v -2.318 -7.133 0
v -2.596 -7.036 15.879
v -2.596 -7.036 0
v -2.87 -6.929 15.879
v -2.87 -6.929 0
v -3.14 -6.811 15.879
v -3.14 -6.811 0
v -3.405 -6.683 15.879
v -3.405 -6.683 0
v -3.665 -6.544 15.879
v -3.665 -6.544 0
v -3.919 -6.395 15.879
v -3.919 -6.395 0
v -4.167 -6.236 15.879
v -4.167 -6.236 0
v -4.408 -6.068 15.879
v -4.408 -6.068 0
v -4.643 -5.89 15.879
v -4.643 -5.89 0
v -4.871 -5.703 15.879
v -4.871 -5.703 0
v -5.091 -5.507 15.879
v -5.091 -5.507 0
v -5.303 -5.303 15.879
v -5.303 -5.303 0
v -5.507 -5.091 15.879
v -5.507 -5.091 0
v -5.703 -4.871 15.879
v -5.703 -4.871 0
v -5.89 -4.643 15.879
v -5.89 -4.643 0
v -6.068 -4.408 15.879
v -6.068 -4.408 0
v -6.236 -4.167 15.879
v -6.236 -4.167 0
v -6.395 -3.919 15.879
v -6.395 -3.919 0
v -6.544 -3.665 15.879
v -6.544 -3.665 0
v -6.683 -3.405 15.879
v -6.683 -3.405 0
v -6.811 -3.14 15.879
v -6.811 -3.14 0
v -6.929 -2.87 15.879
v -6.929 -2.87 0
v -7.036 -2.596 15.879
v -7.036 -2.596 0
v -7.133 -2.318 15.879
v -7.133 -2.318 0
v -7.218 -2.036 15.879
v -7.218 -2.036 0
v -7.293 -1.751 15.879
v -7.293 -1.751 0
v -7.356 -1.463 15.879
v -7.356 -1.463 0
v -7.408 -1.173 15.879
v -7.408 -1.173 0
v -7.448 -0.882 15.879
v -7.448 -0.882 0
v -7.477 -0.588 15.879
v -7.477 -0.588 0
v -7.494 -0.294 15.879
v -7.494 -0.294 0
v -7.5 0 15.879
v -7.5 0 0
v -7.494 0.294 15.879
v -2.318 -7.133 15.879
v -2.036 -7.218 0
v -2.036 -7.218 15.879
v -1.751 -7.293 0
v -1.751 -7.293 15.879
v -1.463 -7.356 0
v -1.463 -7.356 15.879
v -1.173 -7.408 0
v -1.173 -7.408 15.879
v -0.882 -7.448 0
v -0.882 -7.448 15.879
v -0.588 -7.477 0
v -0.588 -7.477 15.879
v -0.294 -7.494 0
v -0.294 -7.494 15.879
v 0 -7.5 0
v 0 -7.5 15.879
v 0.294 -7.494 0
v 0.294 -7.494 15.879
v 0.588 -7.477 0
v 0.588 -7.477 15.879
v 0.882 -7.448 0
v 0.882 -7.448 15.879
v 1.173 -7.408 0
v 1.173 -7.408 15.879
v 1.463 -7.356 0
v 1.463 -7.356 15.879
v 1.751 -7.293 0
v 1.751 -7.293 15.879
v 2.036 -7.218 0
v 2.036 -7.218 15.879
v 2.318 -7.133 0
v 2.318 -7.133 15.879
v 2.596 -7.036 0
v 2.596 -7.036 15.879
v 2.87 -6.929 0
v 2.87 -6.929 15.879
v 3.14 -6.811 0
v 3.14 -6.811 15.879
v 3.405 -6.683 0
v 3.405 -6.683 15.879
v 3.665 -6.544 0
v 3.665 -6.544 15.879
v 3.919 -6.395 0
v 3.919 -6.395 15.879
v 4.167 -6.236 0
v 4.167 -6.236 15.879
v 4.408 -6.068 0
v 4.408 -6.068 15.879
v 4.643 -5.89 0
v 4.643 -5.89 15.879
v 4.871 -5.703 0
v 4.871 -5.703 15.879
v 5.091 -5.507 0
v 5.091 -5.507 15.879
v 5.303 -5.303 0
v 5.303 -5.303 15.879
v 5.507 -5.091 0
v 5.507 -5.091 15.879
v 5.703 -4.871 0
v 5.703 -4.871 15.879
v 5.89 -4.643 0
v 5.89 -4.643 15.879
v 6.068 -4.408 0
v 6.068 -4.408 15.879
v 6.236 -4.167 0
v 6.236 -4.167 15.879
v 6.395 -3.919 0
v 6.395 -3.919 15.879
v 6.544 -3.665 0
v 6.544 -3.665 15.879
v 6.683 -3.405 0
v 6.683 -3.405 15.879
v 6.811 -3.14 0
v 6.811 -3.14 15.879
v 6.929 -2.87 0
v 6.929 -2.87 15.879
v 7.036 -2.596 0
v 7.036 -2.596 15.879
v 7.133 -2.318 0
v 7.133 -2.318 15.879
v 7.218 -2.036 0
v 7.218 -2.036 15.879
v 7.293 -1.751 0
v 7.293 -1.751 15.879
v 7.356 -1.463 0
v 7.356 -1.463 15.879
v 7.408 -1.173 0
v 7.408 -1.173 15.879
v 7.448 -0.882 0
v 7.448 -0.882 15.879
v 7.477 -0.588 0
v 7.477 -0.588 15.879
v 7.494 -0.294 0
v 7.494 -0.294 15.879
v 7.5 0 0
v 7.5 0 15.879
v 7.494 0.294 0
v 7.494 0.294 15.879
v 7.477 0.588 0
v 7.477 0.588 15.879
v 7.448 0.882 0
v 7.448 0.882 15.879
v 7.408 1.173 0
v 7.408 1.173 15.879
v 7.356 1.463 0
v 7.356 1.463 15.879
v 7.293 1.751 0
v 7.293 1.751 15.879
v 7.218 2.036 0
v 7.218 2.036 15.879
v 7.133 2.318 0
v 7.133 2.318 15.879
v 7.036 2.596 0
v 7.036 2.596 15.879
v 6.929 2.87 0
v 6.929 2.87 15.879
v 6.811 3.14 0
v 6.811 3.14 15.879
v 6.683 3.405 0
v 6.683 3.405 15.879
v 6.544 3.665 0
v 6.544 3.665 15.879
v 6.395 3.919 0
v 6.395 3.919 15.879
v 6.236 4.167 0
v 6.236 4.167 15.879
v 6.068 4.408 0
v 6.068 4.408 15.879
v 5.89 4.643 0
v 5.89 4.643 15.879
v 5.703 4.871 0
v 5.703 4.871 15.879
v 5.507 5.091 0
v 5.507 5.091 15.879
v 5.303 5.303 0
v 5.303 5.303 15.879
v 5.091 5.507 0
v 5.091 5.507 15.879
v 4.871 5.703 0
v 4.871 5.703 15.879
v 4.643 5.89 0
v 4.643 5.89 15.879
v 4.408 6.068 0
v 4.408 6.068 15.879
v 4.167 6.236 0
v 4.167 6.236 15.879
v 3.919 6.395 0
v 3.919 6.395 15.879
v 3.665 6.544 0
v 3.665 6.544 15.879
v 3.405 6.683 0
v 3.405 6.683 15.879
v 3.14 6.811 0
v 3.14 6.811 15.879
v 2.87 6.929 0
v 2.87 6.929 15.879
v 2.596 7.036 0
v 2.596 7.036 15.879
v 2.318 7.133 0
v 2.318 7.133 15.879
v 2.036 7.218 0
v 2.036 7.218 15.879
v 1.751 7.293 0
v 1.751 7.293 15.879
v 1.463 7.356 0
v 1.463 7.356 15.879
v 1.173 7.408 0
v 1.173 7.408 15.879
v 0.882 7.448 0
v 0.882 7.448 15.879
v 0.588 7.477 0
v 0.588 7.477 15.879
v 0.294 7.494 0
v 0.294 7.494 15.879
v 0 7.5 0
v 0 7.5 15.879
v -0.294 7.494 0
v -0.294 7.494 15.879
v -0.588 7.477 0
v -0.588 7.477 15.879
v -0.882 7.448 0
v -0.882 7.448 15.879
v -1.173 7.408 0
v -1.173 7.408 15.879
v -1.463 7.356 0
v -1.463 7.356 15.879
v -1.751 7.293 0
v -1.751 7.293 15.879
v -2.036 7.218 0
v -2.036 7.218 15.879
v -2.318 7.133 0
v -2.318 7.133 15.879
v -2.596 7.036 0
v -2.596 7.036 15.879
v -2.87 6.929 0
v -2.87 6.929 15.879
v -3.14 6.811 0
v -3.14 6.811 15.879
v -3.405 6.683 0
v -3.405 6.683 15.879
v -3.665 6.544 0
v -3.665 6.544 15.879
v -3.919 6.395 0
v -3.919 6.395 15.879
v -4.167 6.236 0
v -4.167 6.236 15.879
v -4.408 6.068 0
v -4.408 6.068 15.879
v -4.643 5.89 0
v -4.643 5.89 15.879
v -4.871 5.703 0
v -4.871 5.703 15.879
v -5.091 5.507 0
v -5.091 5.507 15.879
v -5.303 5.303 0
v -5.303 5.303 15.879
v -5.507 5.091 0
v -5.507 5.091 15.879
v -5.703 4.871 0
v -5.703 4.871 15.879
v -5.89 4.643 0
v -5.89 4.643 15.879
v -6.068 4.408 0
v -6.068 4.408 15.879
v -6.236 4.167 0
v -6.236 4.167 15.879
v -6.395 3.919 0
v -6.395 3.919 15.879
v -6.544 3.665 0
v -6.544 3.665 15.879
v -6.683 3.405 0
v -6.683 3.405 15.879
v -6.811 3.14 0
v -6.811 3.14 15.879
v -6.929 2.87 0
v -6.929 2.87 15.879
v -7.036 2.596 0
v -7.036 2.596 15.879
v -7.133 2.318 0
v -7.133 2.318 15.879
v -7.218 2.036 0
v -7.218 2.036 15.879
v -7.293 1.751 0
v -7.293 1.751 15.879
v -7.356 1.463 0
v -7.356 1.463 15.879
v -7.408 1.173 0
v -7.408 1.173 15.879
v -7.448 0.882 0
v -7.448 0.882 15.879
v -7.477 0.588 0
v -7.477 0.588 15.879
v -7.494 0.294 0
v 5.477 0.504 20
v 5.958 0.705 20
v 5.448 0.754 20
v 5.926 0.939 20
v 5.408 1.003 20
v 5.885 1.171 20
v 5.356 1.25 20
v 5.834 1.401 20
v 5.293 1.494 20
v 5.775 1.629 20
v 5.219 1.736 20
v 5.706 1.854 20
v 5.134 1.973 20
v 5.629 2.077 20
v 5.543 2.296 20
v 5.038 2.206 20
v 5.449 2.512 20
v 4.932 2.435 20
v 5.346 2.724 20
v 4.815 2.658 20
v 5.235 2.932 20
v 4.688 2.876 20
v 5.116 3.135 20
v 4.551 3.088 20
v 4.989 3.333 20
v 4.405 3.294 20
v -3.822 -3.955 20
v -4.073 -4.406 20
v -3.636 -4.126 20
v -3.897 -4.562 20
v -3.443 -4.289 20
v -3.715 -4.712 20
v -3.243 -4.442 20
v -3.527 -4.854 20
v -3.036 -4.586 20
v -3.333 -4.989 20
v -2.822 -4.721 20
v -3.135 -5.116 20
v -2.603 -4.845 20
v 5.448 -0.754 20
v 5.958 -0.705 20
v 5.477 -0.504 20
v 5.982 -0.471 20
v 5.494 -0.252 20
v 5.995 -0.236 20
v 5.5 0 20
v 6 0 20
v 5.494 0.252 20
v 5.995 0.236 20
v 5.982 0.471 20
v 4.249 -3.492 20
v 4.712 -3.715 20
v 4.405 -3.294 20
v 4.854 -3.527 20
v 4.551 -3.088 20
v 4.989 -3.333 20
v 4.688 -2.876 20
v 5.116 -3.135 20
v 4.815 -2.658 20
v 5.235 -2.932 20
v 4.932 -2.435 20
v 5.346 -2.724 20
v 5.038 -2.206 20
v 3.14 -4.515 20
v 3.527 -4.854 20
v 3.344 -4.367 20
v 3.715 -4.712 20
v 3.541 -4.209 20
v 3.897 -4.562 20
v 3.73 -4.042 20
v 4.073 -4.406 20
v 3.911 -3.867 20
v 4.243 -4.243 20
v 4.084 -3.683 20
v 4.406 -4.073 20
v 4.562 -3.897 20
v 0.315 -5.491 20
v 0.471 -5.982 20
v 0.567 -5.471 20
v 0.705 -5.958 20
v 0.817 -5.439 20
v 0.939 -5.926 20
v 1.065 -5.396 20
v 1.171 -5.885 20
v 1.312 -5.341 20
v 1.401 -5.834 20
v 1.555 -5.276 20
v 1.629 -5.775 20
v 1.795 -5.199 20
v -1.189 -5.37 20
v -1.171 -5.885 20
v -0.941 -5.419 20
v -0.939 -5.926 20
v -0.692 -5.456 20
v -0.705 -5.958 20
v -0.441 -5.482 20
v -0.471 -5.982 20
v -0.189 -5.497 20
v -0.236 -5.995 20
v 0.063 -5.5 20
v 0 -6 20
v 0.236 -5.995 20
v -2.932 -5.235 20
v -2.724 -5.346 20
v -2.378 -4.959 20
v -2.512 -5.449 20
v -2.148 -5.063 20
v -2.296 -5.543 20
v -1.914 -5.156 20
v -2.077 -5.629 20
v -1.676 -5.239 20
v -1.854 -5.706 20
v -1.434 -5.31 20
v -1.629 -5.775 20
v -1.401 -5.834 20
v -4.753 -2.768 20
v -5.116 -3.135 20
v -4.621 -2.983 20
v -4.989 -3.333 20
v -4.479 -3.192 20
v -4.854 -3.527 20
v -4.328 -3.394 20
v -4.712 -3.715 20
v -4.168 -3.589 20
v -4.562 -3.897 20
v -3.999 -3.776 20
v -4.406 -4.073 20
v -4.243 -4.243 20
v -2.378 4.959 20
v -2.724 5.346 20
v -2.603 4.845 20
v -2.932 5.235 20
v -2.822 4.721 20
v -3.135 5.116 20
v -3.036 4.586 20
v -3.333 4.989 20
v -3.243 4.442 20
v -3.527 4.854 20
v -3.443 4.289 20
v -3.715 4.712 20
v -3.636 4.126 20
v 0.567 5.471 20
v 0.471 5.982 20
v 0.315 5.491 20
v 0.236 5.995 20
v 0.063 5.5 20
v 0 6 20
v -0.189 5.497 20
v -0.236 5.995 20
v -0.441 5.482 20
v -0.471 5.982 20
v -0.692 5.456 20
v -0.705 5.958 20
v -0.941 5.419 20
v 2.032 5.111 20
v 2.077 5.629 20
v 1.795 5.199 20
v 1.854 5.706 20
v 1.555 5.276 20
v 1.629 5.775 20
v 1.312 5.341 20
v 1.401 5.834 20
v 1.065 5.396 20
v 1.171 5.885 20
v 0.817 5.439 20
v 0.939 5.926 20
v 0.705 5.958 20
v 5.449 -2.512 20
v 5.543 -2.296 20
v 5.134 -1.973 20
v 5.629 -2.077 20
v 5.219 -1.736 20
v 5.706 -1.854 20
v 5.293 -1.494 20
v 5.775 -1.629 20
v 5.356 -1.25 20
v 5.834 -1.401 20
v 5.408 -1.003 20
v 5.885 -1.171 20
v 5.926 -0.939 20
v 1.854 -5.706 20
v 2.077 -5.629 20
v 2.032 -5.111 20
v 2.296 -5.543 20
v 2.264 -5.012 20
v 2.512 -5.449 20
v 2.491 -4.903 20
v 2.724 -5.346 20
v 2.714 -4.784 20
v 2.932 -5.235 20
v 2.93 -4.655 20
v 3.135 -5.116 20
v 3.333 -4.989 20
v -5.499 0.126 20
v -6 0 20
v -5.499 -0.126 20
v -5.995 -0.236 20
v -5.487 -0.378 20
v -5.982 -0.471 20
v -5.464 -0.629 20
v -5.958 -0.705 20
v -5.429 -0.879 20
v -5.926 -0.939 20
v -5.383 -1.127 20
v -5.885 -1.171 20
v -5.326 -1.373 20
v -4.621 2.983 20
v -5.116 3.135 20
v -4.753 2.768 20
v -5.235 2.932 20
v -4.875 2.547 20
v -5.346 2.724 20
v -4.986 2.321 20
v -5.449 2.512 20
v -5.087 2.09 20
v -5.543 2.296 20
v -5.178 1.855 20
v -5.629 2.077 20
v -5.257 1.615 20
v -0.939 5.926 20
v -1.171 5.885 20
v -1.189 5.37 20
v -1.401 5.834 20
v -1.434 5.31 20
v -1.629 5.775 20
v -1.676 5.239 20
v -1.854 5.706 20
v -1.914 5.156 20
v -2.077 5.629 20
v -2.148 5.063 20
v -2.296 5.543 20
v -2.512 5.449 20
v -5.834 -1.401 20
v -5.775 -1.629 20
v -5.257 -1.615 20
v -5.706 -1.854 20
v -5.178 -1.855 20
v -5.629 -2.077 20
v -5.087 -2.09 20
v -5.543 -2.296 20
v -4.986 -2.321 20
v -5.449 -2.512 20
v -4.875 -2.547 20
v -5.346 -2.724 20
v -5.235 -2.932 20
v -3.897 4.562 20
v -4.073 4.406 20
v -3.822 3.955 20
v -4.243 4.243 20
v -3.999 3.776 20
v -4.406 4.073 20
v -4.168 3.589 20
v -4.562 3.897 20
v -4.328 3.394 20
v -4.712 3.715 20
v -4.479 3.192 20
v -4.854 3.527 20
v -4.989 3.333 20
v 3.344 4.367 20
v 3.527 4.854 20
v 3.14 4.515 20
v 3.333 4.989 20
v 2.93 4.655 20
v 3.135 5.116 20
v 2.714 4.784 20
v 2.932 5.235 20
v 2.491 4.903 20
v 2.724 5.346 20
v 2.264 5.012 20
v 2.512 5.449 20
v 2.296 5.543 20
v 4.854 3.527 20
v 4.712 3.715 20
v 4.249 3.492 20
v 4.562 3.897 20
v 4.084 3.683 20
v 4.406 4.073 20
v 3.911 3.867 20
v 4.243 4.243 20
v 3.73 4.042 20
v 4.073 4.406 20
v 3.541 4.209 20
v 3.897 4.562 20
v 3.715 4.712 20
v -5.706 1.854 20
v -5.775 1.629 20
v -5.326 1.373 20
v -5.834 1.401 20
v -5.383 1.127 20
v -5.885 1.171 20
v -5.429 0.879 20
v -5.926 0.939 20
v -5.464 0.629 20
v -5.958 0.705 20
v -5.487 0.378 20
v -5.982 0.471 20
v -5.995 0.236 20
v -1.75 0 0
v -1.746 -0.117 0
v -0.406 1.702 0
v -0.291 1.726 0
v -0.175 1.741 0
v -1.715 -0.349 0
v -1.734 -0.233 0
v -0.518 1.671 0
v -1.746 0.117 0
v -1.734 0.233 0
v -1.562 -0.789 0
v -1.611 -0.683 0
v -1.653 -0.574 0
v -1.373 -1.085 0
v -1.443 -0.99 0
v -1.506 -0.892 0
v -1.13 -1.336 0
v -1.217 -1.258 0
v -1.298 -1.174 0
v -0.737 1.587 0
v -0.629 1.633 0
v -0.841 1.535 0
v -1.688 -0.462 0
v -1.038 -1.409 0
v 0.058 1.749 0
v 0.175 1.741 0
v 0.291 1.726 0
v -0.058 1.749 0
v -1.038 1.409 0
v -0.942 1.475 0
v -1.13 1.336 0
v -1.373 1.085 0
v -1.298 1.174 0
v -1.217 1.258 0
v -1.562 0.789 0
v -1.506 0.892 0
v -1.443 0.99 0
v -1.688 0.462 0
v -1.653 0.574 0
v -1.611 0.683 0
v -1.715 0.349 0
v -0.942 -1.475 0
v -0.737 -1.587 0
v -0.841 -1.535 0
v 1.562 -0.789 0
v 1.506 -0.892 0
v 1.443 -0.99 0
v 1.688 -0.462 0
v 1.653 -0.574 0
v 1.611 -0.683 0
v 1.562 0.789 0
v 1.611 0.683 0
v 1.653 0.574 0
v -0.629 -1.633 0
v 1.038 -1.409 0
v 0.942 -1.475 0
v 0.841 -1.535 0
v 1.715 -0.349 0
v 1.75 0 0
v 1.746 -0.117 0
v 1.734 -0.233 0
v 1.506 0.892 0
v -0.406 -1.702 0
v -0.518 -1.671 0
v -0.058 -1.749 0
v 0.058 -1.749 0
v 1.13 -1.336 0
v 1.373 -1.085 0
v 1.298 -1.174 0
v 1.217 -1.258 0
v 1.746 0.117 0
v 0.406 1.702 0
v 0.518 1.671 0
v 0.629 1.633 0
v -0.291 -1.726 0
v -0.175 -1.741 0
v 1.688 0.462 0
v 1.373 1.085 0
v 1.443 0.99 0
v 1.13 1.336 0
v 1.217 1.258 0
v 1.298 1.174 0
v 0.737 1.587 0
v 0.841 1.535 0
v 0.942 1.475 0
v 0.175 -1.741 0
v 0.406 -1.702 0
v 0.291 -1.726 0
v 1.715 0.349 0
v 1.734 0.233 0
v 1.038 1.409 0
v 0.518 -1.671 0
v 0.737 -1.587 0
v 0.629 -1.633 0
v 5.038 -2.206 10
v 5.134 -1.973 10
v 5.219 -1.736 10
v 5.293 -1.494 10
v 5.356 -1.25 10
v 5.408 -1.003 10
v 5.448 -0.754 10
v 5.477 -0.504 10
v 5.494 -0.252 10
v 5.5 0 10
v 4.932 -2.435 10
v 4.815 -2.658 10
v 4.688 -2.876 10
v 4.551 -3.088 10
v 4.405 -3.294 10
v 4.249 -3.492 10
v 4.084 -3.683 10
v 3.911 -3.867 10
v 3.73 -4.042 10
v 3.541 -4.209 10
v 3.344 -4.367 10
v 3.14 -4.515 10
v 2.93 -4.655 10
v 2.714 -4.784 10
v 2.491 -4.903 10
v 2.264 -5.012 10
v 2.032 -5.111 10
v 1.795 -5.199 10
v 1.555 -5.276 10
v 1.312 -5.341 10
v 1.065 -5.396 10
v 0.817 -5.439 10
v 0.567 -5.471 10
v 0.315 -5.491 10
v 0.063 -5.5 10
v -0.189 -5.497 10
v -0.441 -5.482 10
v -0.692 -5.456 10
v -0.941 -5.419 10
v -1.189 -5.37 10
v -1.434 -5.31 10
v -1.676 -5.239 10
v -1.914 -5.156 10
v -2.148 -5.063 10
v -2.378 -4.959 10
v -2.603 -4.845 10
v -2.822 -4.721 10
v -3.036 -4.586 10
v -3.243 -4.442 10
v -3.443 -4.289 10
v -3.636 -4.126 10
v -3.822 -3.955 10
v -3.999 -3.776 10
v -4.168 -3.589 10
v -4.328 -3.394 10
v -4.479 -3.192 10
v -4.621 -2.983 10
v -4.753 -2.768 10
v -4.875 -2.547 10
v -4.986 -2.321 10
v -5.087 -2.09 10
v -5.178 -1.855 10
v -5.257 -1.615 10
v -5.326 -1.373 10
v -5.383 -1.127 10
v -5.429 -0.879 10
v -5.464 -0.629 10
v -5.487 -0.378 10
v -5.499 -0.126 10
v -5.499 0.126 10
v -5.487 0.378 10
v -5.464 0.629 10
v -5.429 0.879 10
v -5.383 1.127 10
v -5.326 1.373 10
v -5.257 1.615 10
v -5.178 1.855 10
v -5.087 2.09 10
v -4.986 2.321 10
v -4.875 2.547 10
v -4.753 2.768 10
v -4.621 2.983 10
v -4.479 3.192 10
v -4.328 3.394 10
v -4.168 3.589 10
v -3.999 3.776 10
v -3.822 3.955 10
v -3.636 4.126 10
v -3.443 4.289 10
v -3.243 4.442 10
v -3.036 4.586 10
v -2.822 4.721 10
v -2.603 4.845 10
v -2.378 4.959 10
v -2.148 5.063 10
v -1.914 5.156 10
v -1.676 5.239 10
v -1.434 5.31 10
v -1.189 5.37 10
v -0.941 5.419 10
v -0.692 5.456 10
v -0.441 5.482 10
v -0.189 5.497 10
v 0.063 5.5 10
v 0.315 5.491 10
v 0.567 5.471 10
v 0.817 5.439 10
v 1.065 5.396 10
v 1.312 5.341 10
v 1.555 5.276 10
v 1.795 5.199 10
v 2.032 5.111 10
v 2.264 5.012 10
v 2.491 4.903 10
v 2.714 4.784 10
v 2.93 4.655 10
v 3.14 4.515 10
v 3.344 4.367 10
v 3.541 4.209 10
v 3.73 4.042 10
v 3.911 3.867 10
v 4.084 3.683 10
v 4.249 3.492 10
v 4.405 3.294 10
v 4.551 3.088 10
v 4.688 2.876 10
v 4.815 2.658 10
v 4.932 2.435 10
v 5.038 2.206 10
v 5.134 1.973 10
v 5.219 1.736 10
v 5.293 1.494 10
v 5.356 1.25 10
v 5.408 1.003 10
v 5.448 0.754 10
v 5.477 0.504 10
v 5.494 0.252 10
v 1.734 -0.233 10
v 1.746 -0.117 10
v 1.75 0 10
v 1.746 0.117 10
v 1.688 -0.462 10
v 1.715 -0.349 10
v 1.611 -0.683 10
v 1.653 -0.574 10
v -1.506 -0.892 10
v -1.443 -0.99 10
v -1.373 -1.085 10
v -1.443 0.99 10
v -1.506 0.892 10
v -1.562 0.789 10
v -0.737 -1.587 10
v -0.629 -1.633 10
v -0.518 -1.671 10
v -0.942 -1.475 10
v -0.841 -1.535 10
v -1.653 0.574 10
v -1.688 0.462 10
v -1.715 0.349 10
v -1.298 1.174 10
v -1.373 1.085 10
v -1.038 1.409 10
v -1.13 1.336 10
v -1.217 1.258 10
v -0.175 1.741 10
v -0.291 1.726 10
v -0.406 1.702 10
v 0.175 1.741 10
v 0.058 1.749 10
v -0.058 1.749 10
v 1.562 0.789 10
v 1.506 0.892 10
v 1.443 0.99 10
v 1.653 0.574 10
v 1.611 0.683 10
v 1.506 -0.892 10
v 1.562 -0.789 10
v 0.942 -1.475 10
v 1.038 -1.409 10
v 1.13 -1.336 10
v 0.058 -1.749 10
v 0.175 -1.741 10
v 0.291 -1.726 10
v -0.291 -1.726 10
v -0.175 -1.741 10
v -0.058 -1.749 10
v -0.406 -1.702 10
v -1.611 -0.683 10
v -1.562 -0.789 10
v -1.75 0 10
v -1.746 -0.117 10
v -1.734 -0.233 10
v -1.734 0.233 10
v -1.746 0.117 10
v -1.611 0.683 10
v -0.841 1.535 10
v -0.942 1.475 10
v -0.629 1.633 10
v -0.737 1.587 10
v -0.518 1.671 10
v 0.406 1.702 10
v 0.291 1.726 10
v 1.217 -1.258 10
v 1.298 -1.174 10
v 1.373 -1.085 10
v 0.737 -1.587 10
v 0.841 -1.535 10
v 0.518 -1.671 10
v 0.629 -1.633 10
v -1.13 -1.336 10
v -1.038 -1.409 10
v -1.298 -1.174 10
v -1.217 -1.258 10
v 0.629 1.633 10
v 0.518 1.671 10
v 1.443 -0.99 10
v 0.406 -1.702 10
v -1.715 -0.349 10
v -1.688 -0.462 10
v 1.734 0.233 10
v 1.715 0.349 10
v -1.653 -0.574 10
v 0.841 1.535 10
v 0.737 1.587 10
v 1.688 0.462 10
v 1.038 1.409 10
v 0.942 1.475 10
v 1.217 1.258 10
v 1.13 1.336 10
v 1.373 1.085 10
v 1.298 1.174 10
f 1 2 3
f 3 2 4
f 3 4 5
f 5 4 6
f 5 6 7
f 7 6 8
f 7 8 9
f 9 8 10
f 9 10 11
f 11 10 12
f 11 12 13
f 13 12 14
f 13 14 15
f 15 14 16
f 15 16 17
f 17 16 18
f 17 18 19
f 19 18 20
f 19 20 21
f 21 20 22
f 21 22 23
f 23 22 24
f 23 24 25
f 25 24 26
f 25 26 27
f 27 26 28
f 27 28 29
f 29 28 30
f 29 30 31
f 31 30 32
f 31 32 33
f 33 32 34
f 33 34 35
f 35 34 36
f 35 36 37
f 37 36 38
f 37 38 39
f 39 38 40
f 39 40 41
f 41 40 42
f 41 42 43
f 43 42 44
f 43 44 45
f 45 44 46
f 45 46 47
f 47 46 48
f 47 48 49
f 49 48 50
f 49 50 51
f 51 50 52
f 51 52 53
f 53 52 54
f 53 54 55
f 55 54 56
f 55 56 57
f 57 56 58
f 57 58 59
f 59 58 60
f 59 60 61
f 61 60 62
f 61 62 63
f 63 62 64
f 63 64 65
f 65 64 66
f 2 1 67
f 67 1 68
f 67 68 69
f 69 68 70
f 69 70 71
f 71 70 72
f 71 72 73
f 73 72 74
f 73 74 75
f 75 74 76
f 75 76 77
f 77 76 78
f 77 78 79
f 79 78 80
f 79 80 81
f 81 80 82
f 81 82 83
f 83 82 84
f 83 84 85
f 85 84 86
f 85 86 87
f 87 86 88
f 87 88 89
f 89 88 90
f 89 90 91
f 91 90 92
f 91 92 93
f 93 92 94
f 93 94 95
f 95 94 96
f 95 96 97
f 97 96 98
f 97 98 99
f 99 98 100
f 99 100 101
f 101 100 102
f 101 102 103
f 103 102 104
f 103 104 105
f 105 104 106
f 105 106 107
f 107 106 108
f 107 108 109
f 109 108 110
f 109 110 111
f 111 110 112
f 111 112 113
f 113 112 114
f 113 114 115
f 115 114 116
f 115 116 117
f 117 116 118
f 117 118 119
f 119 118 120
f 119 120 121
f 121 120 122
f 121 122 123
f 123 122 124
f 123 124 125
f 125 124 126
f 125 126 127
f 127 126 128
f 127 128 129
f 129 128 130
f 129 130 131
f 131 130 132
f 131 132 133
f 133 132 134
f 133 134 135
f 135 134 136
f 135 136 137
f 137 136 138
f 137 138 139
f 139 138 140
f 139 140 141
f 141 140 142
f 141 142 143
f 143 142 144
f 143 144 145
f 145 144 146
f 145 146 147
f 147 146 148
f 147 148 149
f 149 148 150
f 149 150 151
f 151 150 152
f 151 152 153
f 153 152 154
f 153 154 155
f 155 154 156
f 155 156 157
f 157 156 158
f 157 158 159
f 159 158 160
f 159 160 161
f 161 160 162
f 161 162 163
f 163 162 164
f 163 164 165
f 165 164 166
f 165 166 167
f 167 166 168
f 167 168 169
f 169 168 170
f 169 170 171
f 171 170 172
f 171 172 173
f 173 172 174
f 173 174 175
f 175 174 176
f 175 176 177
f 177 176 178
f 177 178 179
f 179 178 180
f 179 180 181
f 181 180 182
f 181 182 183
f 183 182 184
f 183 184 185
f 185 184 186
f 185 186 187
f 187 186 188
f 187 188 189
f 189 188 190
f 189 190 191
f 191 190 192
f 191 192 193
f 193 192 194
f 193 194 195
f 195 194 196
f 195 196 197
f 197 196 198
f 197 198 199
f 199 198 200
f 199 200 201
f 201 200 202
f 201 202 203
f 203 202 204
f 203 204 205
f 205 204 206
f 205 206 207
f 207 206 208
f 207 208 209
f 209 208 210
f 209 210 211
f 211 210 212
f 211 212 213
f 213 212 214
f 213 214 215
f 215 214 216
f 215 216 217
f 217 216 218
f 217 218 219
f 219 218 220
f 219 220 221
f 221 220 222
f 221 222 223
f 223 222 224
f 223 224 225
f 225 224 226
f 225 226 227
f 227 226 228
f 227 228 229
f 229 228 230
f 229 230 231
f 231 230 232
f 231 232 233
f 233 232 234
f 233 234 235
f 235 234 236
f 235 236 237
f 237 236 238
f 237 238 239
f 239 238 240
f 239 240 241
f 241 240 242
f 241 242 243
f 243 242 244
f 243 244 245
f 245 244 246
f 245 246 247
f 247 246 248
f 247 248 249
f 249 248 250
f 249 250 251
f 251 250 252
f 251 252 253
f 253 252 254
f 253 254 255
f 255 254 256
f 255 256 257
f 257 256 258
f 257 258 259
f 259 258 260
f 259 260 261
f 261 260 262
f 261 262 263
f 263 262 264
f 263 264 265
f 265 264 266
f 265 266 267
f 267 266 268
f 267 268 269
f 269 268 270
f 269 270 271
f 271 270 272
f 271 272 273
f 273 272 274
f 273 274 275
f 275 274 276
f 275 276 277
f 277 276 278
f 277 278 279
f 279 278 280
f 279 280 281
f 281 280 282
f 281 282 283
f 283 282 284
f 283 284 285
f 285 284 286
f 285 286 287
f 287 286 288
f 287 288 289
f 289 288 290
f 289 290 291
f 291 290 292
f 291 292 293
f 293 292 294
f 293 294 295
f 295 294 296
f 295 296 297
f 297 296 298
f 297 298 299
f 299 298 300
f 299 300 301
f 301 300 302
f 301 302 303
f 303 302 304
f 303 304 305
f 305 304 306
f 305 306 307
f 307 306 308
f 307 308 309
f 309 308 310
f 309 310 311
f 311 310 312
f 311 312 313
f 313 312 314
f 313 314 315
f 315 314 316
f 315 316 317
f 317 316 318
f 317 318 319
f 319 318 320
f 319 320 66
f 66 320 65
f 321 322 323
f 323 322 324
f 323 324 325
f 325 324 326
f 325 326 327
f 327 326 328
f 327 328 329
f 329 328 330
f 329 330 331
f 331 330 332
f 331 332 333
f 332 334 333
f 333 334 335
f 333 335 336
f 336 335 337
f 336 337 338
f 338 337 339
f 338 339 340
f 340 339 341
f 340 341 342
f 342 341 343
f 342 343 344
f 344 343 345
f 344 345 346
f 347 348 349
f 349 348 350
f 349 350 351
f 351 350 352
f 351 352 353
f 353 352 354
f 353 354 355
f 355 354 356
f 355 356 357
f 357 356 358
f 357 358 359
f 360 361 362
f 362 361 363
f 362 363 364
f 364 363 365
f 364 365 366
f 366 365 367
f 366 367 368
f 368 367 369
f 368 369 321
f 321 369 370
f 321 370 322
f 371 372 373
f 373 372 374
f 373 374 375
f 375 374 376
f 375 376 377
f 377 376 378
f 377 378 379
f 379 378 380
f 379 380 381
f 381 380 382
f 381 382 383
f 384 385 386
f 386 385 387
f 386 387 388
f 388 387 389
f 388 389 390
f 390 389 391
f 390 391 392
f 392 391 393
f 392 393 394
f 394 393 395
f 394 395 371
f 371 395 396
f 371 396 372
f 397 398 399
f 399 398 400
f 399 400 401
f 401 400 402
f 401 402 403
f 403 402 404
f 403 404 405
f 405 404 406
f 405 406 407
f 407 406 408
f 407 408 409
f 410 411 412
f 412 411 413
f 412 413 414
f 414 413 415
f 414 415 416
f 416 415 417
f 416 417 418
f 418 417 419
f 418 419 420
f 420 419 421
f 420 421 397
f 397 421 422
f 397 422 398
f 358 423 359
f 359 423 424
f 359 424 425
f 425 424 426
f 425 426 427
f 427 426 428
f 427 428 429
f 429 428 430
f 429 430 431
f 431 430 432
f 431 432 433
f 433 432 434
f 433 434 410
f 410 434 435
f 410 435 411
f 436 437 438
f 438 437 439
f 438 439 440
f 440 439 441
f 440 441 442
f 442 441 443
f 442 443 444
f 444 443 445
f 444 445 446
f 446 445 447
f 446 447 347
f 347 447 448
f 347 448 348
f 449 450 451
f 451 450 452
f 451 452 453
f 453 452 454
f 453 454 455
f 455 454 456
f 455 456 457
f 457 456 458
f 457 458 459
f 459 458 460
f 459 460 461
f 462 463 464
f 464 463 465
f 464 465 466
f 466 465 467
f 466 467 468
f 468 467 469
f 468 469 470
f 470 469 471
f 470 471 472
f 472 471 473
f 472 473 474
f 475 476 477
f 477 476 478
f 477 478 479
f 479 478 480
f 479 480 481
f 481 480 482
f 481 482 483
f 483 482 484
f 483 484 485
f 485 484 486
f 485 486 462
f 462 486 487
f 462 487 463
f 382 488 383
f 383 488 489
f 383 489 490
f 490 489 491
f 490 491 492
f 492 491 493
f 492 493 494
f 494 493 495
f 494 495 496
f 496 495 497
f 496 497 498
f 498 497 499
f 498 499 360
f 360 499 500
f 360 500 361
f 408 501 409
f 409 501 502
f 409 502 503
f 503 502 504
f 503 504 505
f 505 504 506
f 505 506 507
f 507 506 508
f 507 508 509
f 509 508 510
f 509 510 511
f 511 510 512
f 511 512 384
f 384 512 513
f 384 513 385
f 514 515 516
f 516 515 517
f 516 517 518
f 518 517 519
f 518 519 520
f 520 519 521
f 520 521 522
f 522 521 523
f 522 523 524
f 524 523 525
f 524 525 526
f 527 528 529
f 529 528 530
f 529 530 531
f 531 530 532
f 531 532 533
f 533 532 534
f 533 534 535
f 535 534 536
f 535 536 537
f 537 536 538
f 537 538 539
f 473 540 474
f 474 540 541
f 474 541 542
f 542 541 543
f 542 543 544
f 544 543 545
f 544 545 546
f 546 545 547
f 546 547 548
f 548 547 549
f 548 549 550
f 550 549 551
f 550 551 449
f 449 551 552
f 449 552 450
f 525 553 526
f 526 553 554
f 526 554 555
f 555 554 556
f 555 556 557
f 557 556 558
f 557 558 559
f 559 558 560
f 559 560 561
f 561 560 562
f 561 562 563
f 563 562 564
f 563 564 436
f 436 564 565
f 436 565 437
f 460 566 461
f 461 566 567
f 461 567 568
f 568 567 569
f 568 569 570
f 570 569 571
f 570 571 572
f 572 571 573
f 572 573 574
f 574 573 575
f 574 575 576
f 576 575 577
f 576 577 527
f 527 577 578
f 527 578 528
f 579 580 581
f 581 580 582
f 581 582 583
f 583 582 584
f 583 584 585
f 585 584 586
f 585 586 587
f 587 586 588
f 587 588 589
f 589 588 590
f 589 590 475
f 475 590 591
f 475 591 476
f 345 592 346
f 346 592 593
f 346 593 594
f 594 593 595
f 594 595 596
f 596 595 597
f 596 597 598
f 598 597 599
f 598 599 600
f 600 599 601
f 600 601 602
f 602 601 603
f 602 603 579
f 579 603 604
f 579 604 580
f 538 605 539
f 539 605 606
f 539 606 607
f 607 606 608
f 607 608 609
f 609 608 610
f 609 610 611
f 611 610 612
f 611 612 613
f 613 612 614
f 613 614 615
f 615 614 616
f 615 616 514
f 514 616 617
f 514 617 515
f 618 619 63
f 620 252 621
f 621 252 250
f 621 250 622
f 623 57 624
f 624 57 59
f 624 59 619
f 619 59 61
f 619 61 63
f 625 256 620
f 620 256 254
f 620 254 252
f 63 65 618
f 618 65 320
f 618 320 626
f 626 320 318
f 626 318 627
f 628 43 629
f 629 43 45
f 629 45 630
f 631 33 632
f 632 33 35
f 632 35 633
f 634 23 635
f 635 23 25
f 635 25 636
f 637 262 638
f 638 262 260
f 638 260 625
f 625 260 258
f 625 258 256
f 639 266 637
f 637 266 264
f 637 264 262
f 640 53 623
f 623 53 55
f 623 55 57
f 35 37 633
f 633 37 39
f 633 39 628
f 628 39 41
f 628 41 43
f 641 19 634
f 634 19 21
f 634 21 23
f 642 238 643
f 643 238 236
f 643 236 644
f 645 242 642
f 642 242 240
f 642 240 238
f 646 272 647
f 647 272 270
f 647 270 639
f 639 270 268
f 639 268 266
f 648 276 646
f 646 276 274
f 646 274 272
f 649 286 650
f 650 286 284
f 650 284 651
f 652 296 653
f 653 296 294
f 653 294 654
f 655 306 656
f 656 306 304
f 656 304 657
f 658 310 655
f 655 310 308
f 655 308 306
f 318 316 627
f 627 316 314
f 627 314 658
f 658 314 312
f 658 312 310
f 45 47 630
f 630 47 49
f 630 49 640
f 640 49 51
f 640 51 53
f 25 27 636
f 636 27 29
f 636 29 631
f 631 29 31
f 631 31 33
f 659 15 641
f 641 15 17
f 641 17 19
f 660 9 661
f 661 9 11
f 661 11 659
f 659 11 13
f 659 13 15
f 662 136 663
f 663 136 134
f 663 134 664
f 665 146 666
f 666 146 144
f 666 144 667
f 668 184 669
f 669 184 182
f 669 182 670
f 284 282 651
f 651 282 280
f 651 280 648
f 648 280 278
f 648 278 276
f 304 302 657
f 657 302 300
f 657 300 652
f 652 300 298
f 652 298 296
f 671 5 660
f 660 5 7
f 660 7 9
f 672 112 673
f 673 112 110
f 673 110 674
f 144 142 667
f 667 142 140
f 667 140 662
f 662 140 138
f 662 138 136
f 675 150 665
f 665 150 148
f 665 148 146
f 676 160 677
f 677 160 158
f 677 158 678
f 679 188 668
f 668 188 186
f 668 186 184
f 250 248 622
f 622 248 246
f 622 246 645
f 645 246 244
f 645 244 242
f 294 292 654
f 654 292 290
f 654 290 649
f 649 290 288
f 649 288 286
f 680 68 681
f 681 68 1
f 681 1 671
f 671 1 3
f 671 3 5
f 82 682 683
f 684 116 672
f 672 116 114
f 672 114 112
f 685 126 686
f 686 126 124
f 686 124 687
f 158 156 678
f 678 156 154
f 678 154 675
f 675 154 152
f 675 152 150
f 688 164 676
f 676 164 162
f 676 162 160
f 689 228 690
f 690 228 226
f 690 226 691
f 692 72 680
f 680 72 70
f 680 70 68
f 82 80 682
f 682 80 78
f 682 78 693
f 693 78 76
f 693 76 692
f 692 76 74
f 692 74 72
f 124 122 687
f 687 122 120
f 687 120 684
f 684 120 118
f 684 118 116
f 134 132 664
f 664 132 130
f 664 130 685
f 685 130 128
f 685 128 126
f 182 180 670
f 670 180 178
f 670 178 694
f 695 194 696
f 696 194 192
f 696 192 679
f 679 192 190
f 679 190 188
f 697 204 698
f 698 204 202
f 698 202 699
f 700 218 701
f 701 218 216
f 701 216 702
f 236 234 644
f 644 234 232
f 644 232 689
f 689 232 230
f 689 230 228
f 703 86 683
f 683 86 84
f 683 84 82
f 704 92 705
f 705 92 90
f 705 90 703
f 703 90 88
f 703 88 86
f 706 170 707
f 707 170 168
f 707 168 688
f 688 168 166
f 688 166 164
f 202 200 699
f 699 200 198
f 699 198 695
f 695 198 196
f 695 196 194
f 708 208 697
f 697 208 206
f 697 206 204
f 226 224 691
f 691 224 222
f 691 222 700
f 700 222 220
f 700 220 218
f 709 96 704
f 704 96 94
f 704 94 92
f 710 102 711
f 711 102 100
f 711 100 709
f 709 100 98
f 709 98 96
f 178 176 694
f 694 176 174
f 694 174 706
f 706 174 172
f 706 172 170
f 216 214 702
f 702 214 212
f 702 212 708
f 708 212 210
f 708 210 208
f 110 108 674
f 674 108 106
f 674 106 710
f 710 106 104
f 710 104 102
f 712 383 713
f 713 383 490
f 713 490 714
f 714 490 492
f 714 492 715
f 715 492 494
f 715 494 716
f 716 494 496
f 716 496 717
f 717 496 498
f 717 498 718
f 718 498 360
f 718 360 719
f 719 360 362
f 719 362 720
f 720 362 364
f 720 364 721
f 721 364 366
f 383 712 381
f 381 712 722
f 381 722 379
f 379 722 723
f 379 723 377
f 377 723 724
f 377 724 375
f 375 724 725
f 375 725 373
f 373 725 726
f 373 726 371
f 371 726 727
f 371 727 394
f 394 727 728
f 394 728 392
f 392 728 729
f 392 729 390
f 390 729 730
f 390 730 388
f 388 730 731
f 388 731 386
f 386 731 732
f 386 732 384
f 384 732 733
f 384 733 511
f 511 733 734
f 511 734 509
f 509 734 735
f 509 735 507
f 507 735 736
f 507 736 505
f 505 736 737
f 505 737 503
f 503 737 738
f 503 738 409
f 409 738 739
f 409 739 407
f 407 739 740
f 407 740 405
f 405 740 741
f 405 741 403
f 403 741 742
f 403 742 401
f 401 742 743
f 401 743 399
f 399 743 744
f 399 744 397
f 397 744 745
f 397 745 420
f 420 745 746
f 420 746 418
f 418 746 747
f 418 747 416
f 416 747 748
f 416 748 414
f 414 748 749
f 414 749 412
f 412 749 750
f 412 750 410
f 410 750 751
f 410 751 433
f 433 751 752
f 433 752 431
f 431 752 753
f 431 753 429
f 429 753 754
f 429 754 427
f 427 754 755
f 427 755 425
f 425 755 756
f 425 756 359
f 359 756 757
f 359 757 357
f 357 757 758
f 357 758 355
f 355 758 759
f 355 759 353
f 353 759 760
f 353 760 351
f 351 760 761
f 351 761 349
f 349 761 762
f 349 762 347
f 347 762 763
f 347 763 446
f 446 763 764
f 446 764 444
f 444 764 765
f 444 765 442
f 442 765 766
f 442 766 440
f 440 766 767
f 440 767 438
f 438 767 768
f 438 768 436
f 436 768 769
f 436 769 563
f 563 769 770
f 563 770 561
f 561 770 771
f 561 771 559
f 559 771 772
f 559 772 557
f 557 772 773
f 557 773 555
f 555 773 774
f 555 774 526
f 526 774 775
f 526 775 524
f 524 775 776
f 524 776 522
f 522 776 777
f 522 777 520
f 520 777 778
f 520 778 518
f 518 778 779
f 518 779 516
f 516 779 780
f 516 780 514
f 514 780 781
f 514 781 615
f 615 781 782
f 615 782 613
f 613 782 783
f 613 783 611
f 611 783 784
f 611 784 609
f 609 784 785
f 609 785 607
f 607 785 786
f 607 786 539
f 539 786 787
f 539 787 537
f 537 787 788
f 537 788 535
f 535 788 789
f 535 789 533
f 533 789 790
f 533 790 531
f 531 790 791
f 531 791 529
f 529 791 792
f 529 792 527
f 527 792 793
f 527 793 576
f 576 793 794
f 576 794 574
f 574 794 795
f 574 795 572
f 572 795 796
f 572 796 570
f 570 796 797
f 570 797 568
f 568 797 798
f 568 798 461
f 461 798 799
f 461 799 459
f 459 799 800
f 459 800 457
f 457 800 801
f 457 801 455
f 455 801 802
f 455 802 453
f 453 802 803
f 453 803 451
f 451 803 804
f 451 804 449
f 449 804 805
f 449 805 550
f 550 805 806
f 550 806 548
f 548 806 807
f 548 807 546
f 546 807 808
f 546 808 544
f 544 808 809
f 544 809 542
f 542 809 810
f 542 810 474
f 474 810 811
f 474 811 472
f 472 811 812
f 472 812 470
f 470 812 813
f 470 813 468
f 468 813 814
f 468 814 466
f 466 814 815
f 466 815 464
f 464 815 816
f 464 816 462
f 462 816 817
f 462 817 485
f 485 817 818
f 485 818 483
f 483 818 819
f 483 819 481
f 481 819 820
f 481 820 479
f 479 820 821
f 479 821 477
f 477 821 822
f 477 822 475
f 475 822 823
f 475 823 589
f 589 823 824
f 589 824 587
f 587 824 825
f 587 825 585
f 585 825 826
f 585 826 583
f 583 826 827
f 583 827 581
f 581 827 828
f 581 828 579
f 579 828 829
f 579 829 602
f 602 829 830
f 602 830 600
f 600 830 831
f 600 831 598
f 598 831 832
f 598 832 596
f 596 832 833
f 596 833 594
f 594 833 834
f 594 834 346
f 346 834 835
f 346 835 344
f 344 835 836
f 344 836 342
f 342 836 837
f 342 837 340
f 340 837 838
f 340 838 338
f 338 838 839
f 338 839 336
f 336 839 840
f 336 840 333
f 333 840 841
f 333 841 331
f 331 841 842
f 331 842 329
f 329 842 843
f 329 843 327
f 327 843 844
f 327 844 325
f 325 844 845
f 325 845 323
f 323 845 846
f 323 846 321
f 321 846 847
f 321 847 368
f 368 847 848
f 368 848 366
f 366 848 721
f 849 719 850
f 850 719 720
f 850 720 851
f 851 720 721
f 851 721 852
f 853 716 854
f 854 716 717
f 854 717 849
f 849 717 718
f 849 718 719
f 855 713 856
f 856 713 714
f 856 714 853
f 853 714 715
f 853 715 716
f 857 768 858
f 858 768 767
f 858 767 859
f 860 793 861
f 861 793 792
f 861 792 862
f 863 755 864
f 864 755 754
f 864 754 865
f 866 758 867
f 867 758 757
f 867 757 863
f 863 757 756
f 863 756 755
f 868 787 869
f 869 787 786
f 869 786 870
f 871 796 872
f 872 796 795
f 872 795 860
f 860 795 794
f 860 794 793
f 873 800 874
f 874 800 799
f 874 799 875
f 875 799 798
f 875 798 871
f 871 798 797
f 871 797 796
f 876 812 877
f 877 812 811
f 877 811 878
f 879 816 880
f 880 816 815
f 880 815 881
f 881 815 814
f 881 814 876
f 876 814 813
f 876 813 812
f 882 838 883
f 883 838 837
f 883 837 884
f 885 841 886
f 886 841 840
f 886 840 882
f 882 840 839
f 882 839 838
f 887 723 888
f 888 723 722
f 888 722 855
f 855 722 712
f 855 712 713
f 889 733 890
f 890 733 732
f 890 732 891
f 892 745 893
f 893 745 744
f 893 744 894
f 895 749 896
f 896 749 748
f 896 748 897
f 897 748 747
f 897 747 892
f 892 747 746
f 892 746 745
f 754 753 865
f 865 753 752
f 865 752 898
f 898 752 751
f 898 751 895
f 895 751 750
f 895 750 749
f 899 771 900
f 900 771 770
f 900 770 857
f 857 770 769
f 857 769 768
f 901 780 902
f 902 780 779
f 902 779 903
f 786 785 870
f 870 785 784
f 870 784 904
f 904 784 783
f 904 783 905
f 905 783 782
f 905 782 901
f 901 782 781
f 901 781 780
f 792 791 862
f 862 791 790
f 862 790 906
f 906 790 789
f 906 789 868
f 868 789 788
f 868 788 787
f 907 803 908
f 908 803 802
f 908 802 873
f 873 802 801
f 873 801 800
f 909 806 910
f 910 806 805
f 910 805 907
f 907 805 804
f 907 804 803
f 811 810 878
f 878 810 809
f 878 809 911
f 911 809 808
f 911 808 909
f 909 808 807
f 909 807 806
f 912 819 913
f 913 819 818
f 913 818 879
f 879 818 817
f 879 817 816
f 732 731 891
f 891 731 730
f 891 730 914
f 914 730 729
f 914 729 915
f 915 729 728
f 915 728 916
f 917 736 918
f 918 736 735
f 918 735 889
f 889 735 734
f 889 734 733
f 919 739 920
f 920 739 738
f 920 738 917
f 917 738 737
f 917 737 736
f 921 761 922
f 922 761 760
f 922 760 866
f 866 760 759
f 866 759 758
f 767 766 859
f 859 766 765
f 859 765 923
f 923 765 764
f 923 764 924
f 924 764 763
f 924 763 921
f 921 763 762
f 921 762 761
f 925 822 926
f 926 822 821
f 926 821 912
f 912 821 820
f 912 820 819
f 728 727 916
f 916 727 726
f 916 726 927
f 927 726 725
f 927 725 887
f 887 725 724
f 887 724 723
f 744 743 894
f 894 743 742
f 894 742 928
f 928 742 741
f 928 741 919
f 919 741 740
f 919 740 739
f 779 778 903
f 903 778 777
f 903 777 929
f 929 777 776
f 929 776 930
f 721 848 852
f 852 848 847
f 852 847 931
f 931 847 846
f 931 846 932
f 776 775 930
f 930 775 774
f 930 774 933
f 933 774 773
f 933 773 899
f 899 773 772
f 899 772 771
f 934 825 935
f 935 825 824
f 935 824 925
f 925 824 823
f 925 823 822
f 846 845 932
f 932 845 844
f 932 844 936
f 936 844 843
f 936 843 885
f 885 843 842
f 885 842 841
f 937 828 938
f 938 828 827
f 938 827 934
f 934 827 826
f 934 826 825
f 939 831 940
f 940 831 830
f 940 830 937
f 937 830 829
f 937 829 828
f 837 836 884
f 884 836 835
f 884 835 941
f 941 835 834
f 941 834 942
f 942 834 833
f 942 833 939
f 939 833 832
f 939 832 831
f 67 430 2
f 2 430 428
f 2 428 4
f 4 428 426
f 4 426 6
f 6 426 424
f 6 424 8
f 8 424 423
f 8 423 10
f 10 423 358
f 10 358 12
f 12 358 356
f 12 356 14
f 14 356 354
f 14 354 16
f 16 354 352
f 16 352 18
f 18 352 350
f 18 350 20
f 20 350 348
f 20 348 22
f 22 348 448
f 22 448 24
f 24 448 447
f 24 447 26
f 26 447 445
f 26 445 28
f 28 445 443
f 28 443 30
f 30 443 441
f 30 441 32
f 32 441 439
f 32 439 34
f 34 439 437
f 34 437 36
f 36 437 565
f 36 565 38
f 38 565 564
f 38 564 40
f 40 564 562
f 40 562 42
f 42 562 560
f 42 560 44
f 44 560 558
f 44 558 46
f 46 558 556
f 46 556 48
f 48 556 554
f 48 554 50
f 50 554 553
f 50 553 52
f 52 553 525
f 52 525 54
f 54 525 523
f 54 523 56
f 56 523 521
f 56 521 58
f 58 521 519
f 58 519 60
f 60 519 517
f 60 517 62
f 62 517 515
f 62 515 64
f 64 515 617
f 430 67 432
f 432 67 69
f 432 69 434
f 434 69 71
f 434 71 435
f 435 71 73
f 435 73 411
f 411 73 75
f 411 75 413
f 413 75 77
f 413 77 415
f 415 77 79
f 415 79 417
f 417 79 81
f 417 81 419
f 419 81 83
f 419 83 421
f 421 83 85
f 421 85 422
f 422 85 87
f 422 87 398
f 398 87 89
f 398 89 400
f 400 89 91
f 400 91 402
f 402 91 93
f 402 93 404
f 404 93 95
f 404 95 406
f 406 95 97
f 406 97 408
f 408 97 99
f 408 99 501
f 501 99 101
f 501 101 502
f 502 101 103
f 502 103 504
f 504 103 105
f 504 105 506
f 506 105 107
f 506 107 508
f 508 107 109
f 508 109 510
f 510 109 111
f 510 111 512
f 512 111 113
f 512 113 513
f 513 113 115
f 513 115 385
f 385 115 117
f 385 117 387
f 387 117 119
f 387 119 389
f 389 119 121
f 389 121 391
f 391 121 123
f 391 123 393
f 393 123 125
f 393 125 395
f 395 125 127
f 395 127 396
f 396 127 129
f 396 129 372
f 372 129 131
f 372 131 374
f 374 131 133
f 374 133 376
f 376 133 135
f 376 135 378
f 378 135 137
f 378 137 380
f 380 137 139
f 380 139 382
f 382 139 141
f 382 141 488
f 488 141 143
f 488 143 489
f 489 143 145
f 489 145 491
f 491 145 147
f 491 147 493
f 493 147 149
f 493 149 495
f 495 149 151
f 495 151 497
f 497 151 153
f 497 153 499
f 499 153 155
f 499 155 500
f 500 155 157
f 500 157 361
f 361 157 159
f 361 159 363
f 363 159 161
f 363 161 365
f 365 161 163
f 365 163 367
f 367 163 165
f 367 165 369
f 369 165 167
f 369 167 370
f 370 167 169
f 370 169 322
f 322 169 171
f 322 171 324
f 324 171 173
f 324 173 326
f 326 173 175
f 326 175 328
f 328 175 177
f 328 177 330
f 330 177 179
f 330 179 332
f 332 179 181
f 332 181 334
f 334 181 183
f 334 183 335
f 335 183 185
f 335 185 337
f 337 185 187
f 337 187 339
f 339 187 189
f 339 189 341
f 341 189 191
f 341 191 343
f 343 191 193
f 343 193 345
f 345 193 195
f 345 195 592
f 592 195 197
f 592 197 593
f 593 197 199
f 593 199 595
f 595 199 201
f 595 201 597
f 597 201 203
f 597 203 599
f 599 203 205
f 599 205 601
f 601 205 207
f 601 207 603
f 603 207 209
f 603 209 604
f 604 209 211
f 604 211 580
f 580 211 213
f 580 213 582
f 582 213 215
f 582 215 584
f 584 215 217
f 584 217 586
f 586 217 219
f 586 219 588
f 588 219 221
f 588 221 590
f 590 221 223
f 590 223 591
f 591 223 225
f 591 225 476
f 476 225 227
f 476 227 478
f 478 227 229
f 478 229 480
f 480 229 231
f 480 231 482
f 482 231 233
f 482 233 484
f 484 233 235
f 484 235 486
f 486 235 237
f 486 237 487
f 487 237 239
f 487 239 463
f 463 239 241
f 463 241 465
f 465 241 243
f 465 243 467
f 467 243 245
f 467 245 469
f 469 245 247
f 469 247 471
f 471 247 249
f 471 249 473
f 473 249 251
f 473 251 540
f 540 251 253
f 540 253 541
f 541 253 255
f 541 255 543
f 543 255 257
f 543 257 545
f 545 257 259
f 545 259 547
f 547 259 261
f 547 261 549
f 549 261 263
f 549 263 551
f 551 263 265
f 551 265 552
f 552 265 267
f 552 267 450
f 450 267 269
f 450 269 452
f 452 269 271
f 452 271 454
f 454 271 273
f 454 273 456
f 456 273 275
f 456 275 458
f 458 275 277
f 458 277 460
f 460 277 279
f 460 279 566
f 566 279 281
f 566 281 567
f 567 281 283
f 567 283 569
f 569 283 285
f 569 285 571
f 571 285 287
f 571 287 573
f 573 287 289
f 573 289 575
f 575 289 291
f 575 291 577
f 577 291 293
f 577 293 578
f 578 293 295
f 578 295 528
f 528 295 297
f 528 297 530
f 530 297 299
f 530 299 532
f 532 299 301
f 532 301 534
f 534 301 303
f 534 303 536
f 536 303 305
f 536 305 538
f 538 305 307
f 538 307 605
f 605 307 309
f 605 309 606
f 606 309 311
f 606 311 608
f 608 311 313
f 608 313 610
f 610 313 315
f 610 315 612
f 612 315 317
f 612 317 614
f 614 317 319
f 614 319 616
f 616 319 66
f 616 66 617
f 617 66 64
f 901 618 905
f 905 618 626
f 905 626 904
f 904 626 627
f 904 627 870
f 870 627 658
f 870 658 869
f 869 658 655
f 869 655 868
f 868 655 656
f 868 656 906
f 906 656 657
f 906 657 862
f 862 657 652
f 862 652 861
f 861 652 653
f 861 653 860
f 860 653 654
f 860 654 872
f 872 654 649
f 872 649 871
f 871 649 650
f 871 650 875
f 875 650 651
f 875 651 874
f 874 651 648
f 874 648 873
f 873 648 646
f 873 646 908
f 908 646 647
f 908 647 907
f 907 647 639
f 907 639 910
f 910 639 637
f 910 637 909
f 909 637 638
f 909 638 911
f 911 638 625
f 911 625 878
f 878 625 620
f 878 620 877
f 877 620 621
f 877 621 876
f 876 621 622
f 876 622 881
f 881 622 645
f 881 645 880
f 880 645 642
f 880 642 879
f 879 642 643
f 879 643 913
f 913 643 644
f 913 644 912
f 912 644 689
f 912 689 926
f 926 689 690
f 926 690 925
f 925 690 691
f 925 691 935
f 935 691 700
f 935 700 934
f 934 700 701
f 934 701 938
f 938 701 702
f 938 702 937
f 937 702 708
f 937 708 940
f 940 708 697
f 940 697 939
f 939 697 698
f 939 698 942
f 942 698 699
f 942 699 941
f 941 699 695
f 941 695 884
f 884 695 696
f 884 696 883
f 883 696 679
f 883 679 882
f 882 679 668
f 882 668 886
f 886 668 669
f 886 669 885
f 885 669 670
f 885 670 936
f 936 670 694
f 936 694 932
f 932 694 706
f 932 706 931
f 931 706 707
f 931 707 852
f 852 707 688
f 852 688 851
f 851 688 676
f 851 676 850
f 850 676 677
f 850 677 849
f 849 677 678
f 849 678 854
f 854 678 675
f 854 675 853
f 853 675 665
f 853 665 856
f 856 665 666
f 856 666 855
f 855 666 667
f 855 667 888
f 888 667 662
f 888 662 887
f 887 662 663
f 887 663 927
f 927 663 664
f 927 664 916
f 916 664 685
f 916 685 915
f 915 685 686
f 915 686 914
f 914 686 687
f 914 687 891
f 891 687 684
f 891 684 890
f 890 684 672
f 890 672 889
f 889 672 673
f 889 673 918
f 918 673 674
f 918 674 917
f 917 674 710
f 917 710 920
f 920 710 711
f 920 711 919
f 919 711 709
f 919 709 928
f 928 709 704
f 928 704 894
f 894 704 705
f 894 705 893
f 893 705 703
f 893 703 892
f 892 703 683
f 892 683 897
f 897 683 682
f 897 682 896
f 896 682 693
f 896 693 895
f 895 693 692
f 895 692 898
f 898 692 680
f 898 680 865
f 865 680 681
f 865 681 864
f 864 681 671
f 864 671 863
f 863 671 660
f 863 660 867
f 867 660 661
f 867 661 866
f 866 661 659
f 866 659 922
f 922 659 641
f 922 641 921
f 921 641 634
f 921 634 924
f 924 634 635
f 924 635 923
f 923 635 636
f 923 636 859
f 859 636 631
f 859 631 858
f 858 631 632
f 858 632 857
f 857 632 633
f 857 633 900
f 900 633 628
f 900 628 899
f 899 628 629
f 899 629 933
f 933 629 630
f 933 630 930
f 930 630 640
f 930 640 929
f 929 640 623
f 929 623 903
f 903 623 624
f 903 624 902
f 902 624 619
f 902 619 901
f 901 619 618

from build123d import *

# Parameters (mm, degrees)
SKETCH1_R           = 7.5
BOSS_EXTRUDE1_DEPTH = 20
SKETCH2_R           = 5.5
CUT_EXTRUDE1_DEPTH  = 10
CHAMFER1_SIZE       = 1.5
CHAMFER1_SIZE2      = 4.121216129
SKETCH3_R           = 1.75
CUT_EXTRUDE2_DEPTH  = 23.638462845


with BuildPart() as part:
    # Sketch1 → Boss-Extrude1 (new body)
    with BuildSketch(Plane.XY):
        Circle(SKETCH1_R)
    extrude(amount=BOSS_EXTRUDE1_DEPTH)

    # Sketch2 → Cut-Extrude1 (cut)
    with BuildSketch(Plane.XY.offset(20)):
        Circle(SKETCH2_R)
    extrude(amount=-CUT_EXTRUDE1_DEPTH, mode=Mode.SUBTRACT)

    # Chamfer1
    chamfer1_edges = [part.edges().sort_by_distance(p)[0] for p in [
        (-7.5, 0, 20),
    ]]
    chamfer1_side = [part.faces().sort_by_distance(p)[0] for p in [
        (-7.287867966, 0, 20),
    ]]
    chamfer(chamfer1_edges, length=CHAMFER1_SIZE, length2=CHAMFER1_SIZE2, reference=chamfer1_side[0])

    # Sketch3 → Cut-Extrude2 (cut, through all)
    with BuildSketch(Plane(origin=(0, 0, 0), x_dir=(-1, 0, 0), z_dir=(0, 0, -1))):
        Circle(SKETCH3_R)
    extrude(amount=-CUT_EXTRUDE2_DEPTH, mode=Mode.SUBTRACT)


solid = part.part
